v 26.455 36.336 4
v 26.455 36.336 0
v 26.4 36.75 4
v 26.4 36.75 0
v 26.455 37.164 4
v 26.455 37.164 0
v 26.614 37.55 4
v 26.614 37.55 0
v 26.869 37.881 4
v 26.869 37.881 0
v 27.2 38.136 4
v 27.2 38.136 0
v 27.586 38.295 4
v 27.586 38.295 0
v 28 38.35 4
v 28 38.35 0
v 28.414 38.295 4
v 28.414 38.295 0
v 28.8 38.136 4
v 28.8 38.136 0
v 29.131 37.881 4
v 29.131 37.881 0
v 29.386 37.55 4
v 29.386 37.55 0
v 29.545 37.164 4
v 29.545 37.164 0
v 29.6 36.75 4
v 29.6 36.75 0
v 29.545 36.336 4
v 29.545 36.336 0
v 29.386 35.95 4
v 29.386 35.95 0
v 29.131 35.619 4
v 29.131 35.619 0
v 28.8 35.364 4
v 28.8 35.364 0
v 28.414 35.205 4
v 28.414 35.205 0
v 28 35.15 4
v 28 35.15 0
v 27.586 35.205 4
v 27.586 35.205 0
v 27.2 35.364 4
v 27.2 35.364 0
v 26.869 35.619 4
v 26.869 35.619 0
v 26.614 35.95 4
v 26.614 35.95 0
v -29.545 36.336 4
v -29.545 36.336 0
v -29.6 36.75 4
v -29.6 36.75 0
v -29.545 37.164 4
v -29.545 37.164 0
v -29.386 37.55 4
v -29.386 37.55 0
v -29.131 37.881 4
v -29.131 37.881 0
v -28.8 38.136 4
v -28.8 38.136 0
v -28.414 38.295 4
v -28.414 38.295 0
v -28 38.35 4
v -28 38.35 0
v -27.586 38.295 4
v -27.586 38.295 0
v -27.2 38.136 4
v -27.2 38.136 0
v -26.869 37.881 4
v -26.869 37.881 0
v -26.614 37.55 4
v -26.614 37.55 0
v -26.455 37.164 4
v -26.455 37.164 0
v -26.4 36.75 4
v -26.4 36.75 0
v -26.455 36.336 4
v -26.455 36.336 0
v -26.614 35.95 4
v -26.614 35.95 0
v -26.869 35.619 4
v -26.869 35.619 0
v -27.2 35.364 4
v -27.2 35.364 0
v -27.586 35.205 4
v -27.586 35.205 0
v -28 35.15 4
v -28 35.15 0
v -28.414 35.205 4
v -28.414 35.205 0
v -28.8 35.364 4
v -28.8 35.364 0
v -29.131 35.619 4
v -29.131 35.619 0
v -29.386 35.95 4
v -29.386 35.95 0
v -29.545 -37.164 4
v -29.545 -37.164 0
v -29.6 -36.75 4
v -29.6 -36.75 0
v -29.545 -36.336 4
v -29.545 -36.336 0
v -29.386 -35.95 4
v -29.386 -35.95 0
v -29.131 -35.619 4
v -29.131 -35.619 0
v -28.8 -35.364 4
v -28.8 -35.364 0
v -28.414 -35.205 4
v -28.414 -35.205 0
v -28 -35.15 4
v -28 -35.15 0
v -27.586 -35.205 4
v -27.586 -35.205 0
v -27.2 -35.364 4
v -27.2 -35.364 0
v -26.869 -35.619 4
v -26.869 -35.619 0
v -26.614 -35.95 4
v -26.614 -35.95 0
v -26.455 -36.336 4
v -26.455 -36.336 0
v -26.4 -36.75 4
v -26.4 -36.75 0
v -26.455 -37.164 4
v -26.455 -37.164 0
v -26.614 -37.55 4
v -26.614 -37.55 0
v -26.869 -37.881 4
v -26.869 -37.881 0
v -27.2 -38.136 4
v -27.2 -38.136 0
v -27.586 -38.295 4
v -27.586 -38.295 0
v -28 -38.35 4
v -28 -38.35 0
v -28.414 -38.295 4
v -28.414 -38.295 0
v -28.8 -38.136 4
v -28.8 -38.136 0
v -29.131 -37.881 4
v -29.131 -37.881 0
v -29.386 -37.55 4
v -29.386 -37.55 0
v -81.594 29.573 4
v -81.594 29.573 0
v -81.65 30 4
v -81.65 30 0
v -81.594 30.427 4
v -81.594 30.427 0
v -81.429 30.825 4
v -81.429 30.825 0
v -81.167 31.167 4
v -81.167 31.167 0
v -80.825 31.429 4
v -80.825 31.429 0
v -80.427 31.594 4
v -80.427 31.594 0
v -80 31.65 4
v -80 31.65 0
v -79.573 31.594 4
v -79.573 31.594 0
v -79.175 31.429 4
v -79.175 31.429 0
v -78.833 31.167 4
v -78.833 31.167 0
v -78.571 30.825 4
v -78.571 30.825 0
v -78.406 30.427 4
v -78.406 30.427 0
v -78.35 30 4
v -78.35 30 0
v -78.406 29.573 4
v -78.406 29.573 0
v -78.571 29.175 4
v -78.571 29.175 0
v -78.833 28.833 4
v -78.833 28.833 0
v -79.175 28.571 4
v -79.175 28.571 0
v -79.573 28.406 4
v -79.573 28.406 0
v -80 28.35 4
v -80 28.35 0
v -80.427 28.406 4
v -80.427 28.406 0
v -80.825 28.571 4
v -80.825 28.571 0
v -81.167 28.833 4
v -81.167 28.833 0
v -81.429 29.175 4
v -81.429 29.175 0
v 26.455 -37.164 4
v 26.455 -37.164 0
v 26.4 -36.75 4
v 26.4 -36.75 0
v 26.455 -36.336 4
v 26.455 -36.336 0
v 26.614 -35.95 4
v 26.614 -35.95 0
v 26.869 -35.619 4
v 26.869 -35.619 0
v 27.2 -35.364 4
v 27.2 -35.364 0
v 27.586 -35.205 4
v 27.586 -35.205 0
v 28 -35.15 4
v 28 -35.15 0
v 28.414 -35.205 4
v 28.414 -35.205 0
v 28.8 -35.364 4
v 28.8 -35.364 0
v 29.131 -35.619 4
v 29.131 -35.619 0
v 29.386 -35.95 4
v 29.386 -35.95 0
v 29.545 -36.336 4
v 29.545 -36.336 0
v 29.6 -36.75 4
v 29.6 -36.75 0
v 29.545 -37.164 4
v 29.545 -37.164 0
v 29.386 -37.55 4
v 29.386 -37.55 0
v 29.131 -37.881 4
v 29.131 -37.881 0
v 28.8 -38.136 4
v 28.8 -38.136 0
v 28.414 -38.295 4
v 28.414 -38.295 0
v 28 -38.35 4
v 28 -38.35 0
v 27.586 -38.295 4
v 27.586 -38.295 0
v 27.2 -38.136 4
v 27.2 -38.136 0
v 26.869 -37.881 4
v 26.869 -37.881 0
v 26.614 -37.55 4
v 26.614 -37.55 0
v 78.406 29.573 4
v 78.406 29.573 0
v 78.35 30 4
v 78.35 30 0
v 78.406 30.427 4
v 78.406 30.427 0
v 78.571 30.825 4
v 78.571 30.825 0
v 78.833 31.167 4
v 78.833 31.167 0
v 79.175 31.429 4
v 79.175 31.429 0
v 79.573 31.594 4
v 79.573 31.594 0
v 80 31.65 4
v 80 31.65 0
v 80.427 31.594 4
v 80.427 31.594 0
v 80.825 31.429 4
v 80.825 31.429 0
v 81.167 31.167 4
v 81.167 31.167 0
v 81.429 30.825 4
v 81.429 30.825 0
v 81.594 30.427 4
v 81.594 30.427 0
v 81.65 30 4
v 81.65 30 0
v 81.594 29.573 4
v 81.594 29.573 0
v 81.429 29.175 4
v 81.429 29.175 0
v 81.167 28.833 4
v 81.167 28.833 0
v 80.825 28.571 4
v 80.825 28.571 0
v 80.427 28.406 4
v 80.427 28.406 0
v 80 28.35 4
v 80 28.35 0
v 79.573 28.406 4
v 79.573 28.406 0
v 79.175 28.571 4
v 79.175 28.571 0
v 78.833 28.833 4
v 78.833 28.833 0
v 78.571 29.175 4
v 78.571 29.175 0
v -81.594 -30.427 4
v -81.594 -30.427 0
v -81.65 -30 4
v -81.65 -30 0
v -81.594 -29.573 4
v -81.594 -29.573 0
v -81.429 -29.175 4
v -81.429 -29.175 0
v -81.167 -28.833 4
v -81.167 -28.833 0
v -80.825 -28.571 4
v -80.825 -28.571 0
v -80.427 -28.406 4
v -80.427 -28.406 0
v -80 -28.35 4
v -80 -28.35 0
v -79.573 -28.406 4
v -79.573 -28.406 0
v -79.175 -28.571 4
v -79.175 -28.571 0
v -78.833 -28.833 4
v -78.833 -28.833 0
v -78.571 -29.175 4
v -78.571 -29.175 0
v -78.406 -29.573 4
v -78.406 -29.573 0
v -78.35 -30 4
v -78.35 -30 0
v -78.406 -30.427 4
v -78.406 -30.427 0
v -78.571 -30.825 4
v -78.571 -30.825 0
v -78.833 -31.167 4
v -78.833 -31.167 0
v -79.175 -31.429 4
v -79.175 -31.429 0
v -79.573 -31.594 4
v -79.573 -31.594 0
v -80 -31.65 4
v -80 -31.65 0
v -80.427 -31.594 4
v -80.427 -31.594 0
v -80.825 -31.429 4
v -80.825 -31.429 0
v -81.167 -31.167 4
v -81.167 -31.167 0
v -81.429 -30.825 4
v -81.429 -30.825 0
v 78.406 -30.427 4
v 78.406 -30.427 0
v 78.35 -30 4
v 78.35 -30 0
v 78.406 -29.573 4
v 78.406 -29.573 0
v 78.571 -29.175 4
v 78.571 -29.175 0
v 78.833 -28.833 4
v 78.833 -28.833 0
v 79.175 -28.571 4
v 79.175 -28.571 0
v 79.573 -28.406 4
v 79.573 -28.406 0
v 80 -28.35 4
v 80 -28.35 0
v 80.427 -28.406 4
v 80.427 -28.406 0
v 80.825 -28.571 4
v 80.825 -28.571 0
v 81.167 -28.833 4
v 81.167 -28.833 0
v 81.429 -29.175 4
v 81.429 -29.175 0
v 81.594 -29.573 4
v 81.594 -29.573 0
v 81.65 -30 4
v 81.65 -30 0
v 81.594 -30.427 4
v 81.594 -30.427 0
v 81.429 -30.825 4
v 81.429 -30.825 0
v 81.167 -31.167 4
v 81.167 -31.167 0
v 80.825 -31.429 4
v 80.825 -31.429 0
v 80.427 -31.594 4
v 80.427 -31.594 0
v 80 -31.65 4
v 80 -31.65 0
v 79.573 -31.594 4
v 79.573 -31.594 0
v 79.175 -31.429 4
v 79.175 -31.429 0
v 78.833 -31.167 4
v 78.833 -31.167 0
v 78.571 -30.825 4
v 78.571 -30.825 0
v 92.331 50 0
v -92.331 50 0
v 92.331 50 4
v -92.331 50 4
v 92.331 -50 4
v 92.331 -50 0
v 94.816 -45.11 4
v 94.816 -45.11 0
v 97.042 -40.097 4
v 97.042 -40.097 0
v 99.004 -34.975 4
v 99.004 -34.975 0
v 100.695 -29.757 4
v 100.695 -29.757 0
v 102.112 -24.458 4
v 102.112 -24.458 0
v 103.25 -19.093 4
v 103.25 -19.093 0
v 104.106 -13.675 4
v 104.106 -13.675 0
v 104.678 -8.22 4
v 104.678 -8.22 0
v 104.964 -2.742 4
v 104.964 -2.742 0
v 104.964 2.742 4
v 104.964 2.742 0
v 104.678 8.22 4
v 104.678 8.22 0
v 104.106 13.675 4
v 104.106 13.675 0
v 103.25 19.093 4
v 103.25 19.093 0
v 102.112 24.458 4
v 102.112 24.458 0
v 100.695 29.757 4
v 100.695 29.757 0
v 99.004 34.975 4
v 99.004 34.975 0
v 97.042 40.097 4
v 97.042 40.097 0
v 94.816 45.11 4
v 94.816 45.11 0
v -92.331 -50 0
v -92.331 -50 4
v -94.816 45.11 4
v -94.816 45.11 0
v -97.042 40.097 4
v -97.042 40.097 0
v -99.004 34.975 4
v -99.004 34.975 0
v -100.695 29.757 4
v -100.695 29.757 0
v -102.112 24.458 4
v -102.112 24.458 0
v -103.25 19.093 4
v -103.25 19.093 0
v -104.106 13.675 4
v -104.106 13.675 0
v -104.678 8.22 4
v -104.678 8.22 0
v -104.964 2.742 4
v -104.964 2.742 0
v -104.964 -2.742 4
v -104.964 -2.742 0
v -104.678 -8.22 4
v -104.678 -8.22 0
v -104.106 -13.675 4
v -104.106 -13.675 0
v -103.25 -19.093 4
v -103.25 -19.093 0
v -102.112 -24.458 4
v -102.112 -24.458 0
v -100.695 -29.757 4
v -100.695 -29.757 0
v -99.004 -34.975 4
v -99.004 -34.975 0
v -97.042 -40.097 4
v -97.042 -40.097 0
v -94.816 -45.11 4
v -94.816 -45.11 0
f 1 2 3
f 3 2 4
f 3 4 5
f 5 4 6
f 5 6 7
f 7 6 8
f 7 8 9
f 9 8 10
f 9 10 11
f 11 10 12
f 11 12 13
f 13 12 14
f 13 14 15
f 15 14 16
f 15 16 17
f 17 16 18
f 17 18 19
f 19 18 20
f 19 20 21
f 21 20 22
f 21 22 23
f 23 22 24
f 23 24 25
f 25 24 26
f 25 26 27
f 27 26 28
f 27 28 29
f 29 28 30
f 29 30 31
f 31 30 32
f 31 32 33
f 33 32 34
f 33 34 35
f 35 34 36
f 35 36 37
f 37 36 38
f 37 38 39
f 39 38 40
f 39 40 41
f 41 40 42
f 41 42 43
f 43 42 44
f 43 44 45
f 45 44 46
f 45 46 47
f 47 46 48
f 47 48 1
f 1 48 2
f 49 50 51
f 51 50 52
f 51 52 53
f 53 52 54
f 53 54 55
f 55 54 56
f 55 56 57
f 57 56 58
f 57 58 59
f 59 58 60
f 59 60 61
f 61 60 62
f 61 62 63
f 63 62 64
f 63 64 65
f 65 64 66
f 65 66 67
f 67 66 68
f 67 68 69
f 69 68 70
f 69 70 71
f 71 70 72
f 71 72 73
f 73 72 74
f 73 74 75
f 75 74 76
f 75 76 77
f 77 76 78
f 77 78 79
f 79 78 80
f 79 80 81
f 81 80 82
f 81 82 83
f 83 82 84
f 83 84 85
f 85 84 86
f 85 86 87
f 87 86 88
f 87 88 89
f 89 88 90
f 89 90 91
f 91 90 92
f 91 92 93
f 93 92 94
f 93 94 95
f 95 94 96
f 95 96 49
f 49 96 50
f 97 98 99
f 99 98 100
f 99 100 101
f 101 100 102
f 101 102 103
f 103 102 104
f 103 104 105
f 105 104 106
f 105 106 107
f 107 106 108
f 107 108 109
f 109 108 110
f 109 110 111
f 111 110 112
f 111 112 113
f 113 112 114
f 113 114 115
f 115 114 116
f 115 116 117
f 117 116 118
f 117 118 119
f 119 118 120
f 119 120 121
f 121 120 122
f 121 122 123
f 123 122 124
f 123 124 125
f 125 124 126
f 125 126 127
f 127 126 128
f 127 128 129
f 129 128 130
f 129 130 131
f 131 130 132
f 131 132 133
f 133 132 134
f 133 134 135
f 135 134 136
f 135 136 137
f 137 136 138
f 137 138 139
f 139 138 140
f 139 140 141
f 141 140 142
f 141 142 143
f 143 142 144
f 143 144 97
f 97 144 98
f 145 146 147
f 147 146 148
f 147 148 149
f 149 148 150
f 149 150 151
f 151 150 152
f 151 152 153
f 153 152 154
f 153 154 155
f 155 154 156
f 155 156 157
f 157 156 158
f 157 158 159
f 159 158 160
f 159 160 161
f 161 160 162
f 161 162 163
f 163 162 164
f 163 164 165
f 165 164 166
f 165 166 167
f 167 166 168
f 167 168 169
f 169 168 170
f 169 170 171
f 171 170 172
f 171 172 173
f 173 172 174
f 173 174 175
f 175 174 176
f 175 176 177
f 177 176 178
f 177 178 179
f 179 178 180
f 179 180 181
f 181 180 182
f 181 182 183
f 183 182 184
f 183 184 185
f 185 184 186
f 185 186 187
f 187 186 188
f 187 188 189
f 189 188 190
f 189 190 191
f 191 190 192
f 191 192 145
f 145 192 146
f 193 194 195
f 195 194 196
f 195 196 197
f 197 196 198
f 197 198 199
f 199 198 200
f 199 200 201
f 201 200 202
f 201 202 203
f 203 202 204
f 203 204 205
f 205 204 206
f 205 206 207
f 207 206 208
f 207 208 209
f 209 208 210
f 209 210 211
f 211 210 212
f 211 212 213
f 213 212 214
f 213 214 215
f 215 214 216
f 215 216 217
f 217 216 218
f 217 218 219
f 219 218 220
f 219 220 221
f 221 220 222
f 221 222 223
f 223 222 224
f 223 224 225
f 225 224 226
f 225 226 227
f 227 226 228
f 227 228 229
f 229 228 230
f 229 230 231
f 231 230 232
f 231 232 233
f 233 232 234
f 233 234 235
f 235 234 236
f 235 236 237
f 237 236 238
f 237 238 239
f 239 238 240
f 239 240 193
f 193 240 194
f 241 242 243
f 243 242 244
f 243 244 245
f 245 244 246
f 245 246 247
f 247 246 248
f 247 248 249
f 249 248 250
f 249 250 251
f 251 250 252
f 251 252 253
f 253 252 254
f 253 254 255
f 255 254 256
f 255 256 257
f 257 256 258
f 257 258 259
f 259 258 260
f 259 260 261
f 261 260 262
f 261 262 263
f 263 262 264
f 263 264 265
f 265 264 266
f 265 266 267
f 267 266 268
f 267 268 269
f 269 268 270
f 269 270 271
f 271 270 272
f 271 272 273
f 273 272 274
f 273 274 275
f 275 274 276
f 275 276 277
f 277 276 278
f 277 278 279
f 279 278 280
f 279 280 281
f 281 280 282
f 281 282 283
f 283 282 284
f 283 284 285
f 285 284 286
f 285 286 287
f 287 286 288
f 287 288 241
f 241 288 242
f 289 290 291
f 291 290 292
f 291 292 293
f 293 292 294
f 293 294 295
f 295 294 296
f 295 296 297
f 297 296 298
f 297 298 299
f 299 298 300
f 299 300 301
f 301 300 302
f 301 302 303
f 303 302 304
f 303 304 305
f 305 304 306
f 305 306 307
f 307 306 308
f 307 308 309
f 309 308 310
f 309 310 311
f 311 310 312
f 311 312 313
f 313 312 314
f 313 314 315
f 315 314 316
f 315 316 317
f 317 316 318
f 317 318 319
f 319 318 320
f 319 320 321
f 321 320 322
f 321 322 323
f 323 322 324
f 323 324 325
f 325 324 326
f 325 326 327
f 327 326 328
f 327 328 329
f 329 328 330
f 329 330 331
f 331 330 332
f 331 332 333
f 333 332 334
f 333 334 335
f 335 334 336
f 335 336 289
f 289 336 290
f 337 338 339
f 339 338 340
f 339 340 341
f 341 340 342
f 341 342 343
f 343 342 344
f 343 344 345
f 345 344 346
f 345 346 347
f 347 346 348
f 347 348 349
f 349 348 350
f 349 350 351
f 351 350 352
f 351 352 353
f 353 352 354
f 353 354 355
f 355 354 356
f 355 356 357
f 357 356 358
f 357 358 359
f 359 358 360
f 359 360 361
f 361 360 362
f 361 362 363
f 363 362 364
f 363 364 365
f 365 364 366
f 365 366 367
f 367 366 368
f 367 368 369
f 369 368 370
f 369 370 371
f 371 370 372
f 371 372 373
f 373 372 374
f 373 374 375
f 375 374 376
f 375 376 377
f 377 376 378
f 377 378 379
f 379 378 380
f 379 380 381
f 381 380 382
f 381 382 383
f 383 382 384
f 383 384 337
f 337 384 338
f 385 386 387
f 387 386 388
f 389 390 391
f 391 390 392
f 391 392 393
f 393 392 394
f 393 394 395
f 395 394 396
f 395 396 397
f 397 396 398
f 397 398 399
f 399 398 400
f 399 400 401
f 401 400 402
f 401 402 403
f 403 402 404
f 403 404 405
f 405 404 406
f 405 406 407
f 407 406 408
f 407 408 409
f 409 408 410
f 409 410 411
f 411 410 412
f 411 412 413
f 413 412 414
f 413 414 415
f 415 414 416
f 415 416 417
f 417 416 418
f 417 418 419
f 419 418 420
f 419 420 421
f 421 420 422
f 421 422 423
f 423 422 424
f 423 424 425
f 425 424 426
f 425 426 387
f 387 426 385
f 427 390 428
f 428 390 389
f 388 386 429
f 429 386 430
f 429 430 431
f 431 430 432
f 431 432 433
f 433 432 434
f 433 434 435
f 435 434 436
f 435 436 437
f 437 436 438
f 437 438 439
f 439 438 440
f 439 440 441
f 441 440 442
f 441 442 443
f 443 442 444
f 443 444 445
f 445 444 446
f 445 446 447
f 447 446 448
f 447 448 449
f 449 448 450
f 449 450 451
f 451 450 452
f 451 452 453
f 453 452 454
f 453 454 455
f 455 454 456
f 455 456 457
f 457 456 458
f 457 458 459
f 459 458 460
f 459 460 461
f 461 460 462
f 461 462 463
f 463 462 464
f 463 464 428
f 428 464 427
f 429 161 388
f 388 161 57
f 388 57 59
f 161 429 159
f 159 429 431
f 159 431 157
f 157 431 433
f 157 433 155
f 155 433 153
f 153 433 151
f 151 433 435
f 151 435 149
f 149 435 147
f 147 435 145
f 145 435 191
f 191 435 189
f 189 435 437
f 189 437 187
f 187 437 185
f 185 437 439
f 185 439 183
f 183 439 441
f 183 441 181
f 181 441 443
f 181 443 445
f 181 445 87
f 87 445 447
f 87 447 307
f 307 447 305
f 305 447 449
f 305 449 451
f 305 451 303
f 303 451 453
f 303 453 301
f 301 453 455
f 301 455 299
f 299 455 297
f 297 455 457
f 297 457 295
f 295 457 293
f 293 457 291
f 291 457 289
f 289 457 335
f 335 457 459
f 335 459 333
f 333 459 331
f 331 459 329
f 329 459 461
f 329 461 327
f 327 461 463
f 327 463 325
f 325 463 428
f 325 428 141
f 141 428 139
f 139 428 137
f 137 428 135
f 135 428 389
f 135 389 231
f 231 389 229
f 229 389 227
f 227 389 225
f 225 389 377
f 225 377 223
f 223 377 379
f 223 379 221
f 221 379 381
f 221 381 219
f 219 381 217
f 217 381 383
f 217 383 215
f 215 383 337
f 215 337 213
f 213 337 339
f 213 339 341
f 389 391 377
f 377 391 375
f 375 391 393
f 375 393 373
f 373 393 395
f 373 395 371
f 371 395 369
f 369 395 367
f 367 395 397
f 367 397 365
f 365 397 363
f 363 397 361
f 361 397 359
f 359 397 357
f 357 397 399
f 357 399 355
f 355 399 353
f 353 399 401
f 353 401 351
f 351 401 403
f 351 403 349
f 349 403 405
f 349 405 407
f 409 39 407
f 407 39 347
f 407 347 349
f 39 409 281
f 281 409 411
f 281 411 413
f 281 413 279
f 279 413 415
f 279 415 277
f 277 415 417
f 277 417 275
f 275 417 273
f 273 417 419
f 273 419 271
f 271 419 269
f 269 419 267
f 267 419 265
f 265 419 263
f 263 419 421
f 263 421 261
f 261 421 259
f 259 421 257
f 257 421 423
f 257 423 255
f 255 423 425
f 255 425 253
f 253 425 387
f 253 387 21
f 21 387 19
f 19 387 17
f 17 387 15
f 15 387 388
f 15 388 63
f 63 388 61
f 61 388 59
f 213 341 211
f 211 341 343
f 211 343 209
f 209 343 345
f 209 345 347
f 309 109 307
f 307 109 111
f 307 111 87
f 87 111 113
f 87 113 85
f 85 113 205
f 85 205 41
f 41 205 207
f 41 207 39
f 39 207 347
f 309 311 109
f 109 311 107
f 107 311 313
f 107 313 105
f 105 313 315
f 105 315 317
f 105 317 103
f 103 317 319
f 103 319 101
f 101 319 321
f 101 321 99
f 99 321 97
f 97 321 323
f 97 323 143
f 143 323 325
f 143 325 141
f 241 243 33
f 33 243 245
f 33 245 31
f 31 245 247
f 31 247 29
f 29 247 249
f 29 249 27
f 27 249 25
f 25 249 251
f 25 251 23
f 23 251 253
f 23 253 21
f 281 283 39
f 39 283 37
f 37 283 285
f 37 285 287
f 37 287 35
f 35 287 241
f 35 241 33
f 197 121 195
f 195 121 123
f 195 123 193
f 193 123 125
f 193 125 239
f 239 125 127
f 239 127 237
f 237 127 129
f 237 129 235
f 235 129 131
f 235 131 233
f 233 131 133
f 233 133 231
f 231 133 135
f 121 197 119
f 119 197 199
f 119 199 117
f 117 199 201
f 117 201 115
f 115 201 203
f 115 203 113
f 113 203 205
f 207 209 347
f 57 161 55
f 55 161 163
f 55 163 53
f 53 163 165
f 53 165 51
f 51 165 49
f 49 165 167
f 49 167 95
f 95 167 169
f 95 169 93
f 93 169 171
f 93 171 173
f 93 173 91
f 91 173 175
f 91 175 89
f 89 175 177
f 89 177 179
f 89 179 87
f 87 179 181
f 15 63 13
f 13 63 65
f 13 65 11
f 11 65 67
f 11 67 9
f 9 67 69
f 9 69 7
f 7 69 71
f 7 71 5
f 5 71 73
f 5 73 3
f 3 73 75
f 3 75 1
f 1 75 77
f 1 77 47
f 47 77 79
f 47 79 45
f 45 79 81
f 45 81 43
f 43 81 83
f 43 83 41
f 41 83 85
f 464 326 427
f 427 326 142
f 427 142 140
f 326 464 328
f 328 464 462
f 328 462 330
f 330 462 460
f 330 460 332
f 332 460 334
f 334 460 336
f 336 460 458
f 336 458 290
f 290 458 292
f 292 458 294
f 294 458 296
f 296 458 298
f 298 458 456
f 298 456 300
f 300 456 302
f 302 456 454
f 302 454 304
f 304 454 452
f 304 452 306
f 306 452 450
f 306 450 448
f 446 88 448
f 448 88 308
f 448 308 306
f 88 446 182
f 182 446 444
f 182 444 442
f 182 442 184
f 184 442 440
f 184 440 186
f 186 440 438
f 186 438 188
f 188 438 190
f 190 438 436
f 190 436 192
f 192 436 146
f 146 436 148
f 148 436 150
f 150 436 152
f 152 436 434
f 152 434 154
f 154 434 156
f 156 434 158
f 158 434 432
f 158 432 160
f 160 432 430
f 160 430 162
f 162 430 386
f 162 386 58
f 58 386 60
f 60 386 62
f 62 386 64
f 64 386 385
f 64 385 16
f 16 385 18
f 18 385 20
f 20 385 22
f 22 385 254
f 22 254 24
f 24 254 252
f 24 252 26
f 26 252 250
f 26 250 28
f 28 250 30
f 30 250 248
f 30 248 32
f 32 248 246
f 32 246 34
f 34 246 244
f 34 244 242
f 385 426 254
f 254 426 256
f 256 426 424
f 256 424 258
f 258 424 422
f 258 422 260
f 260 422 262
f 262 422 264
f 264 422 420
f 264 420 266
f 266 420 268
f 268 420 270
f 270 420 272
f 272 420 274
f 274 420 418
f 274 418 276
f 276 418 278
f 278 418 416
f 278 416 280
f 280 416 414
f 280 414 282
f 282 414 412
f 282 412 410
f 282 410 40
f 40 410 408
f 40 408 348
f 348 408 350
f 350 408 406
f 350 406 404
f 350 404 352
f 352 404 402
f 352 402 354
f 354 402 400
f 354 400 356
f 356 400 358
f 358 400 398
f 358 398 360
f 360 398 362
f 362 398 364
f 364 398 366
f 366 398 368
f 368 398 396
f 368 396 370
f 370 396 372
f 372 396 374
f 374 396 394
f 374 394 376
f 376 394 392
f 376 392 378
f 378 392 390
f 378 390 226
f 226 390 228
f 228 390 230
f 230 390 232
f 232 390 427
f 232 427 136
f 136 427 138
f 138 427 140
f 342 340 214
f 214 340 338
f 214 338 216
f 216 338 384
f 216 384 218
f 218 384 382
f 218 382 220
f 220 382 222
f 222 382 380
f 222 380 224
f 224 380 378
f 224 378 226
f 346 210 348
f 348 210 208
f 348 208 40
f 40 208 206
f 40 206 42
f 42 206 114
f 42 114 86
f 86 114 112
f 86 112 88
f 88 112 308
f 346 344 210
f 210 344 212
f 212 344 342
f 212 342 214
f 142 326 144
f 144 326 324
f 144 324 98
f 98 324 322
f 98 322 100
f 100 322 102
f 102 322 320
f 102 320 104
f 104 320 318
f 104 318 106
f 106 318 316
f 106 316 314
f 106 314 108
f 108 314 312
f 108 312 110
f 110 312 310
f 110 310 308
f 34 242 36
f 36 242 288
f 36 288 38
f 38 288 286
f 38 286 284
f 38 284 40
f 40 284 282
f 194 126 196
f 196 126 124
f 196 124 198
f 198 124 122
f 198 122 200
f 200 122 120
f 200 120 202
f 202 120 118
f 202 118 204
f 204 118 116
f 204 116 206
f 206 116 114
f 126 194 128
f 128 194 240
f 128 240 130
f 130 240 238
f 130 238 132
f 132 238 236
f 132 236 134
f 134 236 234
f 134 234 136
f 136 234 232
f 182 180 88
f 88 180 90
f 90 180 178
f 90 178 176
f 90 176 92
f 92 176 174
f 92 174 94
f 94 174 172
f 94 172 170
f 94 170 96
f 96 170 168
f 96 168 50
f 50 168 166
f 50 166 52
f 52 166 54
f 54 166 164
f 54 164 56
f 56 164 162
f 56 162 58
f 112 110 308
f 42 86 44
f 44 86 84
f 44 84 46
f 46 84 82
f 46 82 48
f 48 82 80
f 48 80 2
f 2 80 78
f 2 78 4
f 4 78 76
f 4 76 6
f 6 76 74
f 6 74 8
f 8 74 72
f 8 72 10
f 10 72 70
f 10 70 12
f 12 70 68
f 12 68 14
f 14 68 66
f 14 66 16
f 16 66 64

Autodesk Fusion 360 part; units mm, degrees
sketch "Sketch1" plane through (0, 0, 0) normal (0, 0, 1) x (1, 0, 0)
  circle A0 centre (-80, -30) radius 1.65
  line L0 (0, 2.5) -> (0, 20)
  line L1 (20, 0) -> (2.5, 0)
  circle A1 centre (-80, 30) radius 1.65
  circle A2 centre (80, -30) radius 1.65
  circle A3 centre (80, 30) radius 1.65
  line L2 (-28, 36.75) -> (28, 36.75) construction
  line L3 (28, 36.75) -> (28, -36.75) construction
  line L4 (28, -36.75) -> (-28, -36.75) construction
  line L5 (-28, -36.75) -> (-28, 36.75) construction
  circle A4 centre (-28, 36.75) radius 1.6
  circle A5 centre (28, 36.75) radius 1.6
  circle A6 centre (-28, -36.75) radius 1.6
  circle A7 centre (28, -36.75) radius 1.6
  line L6 (-92.3309, -50) -> (92.3309, -50)
  line L7 (-92.3309, 50) -> (92.3309, 50)
  arc A8 (-92.3309, 50) -> (-92.3309, -50) centre (0, 0) ccw
  arc A9 (92.3309, -50) -> (92.3309, 50) centre (0, 0) ccw
  dimension "d1" = 210
  dimension "d2" = 3.3
  dimension "d3" = 80
  dimension "d4" = 30
  dimension "d5" = 56
  dimension "d6" = 73.5
  dimension "d7" = 3.2
  dimension "d8" = 3.2
  dimension "d9" = 3.2
  dimension "d10" = 3.2
  dimension "d11" = 50
extrude "Extrude1" add sketch "Sketch1" along normal blind 4
equation "d6 = 28 mm + 45.5 mm"
